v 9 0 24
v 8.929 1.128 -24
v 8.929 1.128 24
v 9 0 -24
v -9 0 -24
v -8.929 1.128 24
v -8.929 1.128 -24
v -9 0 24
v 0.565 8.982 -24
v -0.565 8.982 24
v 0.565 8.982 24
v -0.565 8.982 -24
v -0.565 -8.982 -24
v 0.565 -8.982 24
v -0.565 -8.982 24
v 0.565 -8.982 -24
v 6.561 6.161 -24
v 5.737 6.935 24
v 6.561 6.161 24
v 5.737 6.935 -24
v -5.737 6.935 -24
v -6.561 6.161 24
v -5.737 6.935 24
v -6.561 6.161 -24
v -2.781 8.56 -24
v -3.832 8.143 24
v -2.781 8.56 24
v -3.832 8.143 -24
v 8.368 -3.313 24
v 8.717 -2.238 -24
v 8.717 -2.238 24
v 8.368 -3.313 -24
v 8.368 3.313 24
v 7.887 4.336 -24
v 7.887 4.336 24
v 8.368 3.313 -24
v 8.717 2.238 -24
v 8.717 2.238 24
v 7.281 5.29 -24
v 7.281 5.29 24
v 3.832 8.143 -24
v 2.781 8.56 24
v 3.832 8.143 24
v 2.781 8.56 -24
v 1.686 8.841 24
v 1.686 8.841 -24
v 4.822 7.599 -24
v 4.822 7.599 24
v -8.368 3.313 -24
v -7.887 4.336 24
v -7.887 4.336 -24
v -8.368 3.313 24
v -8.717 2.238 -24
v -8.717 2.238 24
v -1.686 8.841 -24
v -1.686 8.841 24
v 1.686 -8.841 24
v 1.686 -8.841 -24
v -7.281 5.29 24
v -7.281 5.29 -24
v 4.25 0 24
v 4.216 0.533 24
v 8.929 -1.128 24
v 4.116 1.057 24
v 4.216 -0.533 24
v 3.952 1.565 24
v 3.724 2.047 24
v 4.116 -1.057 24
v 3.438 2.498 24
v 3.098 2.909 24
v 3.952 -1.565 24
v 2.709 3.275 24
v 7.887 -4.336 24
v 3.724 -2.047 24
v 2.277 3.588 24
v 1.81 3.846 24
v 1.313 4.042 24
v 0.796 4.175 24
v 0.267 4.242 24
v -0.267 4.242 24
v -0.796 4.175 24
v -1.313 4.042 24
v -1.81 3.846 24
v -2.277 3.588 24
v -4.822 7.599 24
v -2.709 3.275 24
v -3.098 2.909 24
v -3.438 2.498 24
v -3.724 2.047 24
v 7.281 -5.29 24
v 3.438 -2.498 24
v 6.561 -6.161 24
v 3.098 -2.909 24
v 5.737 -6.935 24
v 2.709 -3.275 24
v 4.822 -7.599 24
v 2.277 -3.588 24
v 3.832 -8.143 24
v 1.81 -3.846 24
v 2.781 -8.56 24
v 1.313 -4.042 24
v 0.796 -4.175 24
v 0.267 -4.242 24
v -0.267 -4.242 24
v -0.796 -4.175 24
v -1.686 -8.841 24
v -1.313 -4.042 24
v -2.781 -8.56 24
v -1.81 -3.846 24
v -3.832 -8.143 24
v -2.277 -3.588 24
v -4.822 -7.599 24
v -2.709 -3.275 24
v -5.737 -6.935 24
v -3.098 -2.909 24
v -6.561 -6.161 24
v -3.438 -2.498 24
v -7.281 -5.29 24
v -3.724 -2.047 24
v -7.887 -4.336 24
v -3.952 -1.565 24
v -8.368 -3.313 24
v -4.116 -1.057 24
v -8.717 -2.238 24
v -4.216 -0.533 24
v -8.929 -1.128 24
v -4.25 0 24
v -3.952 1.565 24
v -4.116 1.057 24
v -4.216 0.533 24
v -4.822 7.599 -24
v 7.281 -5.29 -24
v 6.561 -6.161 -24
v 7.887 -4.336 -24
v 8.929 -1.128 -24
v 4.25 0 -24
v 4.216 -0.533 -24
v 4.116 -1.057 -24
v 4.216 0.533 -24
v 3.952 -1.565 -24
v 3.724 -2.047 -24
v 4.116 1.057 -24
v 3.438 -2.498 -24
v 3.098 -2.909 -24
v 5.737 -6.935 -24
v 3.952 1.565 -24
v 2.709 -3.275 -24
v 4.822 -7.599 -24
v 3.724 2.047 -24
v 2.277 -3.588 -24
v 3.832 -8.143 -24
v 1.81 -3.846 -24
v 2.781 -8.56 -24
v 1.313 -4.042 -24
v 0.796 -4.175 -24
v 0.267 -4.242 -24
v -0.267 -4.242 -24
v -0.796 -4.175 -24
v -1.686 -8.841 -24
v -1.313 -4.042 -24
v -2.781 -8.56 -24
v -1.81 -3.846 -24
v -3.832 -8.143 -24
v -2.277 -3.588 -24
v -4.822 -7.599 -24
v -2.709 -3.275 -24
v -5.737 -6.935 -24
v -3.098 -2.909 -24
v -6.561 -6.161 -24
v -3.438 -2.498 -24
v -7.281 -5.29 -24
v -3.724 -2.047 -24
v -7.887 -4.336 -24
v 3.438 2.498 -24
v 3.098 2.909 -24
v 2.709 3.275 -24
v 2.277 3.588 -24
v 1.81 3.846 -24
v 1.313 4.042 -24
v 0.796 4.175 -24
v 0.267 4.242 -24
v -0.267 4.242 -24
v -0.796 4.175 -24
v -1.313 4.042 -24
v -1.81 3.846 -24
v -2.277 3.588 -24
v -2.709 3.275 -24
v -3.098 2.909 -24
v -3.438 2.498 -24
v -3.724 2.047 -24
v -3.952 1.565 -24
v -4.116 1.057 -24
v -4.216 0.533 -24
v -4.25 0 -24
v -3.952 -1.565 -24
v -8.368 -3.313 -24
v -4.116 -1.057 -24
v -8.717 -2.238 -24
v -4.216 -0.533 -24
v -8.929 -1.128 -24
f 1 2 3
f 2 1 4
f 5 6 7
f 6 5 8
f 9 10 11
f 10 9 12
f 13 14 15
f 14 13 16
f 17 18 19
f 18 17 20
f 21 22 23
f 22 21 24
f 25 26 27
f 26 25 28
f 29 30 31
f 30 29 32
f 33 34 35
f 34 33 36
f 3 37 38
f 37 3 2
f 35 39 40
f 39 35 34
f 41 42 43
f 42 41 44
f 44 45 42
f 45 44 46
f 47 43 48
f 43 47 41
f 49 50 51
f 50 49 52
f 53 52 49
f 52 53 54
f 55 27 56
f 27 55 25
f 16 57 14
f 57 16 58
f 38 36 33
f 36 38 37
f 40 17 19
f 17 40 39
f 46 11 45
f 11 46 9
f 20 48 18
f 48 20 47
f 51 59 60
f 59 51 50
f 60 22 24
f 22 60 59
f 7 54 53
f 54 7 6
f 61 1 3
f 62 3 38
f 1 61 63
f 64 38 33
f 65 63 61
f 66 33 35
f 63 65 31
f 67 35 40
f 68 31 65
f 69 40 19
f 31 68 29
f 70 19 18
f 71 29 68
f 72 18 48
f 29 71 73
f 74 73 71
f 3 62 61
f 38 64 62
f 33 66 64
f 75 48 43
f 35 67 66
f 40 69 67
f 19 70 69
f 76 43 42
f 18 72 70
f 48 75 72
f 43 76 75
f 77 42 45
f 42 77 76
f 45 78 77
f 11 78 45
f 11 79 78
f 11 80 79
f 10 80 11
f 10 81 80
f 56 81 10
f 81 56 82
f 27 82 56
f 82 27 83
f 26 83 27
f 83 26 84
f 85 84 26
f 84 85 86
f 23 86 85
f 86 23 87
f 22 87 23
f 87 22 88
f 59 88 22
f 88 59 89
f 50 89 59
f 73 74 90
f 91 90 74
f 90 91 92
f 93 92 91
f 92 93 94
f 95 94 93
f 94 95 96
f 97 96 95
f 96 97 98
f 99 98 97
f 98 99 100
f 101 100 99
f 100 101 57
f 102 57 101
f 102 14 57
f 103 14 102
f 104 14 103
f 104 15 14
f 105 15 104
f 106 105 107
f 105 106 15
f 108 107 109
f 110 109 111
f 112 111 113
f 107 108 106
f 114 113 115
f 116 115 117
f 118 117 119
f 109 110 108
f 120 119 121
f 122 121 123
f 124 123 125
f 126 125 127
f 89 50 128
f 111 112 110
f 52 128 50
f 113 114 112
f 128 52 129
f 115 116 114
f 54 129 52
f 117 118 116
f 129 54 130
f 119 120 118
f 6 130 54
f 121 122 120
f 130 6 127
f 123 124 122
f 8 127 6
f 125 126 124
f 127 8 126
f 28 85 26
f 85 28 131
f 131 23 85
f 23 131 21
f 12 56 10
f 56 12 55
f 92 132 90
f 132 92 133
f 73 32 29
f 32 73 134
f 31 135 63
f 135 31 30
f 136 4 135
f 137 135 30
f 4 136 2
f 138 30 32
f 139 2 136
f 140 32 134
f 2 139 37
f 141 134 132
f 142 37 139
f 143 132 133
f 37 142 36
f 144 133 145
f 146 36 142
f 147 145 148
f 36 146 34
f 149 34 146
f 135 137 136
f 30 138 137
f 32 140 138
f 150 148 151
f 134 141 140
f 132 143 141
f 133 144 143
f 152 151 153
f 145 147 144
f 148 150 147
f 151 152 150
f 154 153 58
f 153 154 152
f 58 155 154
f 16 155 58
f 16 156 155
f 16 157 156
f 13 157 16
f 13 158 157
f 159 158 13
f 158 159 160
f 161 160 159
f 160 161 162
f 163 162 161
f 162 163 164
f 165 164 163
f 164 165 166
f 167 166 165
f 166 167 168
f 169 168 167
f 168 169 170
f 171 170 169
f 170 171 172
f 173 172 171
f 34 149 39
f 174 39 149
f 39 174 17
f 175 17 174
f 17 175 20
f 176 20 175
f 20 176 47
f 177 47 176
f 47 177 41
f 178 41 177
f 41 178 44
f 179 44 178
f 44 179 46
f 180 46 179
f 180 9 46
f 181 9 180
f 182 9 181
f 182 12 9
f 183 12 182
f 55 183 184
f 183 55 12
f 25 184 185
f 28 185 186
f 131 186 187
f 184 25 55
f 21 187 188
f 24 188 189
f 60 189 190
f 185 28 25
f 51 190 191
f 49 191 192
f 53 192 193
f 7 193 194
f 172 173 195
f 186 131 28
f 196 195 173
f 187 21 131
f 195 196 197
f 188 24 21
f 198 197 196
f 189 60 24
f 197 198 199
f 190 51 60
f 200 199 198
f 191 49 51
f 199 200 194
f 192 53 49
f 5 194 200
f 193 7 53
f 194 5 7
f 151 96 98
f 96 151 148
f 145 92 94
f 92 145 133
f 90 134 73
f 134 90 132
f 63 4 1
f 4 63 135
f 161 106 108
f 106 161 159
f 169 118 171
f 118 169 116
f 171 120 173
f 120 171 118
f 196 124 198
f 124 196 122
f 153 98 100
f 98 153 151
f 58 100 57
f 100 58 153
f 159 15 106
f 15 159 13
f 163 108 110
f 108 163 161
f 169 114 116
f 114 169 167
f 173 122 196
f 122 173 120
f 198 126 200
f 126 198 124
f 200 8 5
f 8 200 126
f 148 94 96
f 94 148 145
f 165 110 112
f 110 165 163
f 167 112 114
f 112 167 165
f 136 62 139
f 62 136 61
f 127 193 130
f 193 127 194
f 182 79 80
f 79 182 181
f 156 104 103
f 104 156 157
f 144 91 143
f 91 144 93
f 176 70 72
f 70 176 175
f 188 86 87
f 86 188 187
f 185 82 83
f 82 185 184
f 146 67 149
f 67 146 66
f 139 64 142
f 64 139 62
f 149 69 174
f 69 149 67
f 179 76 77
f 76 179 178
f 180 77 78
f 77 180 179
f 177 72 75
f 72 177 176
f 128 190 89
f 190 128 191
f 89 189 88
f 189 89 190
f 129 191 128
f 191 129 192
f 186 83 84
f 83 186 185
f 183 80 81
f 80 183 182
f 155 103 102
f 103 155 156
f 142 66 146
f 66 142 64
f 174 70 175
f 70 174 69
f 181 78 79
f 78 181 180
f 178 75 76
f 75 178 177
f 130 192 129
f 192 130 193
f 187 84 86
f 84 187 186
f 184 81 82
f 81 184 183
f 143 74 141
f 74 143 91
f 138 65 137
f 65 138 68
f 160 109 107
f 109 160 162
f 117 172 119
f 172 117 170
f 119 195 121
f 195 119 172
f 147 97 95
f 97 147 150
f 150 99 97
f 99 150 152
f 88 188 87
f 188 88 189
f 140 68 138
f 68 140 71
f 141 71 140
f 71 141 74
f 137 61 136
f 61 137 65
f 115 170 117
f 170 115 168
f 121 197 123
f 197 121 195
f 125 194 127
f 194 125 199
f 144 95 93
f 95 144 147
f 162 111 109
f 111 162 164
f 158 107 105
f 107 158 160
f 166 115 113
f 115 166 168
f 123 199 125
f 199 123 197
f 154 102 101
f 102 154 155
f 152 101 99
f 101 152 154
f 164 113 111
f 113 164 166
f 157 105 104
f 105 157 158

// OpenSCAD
$fn = 50;


difference() {
	union() {
		translate(v = [0, 0, -24.0000000000]) {
			cylinder(h = 48, r = 9.0000000000);
		}
	}
	union() {
		translate(v = [0, 0, -100.0000000000]) {
			cylinder(h = 200, r = 4.2500000000);
		}
	}
}
